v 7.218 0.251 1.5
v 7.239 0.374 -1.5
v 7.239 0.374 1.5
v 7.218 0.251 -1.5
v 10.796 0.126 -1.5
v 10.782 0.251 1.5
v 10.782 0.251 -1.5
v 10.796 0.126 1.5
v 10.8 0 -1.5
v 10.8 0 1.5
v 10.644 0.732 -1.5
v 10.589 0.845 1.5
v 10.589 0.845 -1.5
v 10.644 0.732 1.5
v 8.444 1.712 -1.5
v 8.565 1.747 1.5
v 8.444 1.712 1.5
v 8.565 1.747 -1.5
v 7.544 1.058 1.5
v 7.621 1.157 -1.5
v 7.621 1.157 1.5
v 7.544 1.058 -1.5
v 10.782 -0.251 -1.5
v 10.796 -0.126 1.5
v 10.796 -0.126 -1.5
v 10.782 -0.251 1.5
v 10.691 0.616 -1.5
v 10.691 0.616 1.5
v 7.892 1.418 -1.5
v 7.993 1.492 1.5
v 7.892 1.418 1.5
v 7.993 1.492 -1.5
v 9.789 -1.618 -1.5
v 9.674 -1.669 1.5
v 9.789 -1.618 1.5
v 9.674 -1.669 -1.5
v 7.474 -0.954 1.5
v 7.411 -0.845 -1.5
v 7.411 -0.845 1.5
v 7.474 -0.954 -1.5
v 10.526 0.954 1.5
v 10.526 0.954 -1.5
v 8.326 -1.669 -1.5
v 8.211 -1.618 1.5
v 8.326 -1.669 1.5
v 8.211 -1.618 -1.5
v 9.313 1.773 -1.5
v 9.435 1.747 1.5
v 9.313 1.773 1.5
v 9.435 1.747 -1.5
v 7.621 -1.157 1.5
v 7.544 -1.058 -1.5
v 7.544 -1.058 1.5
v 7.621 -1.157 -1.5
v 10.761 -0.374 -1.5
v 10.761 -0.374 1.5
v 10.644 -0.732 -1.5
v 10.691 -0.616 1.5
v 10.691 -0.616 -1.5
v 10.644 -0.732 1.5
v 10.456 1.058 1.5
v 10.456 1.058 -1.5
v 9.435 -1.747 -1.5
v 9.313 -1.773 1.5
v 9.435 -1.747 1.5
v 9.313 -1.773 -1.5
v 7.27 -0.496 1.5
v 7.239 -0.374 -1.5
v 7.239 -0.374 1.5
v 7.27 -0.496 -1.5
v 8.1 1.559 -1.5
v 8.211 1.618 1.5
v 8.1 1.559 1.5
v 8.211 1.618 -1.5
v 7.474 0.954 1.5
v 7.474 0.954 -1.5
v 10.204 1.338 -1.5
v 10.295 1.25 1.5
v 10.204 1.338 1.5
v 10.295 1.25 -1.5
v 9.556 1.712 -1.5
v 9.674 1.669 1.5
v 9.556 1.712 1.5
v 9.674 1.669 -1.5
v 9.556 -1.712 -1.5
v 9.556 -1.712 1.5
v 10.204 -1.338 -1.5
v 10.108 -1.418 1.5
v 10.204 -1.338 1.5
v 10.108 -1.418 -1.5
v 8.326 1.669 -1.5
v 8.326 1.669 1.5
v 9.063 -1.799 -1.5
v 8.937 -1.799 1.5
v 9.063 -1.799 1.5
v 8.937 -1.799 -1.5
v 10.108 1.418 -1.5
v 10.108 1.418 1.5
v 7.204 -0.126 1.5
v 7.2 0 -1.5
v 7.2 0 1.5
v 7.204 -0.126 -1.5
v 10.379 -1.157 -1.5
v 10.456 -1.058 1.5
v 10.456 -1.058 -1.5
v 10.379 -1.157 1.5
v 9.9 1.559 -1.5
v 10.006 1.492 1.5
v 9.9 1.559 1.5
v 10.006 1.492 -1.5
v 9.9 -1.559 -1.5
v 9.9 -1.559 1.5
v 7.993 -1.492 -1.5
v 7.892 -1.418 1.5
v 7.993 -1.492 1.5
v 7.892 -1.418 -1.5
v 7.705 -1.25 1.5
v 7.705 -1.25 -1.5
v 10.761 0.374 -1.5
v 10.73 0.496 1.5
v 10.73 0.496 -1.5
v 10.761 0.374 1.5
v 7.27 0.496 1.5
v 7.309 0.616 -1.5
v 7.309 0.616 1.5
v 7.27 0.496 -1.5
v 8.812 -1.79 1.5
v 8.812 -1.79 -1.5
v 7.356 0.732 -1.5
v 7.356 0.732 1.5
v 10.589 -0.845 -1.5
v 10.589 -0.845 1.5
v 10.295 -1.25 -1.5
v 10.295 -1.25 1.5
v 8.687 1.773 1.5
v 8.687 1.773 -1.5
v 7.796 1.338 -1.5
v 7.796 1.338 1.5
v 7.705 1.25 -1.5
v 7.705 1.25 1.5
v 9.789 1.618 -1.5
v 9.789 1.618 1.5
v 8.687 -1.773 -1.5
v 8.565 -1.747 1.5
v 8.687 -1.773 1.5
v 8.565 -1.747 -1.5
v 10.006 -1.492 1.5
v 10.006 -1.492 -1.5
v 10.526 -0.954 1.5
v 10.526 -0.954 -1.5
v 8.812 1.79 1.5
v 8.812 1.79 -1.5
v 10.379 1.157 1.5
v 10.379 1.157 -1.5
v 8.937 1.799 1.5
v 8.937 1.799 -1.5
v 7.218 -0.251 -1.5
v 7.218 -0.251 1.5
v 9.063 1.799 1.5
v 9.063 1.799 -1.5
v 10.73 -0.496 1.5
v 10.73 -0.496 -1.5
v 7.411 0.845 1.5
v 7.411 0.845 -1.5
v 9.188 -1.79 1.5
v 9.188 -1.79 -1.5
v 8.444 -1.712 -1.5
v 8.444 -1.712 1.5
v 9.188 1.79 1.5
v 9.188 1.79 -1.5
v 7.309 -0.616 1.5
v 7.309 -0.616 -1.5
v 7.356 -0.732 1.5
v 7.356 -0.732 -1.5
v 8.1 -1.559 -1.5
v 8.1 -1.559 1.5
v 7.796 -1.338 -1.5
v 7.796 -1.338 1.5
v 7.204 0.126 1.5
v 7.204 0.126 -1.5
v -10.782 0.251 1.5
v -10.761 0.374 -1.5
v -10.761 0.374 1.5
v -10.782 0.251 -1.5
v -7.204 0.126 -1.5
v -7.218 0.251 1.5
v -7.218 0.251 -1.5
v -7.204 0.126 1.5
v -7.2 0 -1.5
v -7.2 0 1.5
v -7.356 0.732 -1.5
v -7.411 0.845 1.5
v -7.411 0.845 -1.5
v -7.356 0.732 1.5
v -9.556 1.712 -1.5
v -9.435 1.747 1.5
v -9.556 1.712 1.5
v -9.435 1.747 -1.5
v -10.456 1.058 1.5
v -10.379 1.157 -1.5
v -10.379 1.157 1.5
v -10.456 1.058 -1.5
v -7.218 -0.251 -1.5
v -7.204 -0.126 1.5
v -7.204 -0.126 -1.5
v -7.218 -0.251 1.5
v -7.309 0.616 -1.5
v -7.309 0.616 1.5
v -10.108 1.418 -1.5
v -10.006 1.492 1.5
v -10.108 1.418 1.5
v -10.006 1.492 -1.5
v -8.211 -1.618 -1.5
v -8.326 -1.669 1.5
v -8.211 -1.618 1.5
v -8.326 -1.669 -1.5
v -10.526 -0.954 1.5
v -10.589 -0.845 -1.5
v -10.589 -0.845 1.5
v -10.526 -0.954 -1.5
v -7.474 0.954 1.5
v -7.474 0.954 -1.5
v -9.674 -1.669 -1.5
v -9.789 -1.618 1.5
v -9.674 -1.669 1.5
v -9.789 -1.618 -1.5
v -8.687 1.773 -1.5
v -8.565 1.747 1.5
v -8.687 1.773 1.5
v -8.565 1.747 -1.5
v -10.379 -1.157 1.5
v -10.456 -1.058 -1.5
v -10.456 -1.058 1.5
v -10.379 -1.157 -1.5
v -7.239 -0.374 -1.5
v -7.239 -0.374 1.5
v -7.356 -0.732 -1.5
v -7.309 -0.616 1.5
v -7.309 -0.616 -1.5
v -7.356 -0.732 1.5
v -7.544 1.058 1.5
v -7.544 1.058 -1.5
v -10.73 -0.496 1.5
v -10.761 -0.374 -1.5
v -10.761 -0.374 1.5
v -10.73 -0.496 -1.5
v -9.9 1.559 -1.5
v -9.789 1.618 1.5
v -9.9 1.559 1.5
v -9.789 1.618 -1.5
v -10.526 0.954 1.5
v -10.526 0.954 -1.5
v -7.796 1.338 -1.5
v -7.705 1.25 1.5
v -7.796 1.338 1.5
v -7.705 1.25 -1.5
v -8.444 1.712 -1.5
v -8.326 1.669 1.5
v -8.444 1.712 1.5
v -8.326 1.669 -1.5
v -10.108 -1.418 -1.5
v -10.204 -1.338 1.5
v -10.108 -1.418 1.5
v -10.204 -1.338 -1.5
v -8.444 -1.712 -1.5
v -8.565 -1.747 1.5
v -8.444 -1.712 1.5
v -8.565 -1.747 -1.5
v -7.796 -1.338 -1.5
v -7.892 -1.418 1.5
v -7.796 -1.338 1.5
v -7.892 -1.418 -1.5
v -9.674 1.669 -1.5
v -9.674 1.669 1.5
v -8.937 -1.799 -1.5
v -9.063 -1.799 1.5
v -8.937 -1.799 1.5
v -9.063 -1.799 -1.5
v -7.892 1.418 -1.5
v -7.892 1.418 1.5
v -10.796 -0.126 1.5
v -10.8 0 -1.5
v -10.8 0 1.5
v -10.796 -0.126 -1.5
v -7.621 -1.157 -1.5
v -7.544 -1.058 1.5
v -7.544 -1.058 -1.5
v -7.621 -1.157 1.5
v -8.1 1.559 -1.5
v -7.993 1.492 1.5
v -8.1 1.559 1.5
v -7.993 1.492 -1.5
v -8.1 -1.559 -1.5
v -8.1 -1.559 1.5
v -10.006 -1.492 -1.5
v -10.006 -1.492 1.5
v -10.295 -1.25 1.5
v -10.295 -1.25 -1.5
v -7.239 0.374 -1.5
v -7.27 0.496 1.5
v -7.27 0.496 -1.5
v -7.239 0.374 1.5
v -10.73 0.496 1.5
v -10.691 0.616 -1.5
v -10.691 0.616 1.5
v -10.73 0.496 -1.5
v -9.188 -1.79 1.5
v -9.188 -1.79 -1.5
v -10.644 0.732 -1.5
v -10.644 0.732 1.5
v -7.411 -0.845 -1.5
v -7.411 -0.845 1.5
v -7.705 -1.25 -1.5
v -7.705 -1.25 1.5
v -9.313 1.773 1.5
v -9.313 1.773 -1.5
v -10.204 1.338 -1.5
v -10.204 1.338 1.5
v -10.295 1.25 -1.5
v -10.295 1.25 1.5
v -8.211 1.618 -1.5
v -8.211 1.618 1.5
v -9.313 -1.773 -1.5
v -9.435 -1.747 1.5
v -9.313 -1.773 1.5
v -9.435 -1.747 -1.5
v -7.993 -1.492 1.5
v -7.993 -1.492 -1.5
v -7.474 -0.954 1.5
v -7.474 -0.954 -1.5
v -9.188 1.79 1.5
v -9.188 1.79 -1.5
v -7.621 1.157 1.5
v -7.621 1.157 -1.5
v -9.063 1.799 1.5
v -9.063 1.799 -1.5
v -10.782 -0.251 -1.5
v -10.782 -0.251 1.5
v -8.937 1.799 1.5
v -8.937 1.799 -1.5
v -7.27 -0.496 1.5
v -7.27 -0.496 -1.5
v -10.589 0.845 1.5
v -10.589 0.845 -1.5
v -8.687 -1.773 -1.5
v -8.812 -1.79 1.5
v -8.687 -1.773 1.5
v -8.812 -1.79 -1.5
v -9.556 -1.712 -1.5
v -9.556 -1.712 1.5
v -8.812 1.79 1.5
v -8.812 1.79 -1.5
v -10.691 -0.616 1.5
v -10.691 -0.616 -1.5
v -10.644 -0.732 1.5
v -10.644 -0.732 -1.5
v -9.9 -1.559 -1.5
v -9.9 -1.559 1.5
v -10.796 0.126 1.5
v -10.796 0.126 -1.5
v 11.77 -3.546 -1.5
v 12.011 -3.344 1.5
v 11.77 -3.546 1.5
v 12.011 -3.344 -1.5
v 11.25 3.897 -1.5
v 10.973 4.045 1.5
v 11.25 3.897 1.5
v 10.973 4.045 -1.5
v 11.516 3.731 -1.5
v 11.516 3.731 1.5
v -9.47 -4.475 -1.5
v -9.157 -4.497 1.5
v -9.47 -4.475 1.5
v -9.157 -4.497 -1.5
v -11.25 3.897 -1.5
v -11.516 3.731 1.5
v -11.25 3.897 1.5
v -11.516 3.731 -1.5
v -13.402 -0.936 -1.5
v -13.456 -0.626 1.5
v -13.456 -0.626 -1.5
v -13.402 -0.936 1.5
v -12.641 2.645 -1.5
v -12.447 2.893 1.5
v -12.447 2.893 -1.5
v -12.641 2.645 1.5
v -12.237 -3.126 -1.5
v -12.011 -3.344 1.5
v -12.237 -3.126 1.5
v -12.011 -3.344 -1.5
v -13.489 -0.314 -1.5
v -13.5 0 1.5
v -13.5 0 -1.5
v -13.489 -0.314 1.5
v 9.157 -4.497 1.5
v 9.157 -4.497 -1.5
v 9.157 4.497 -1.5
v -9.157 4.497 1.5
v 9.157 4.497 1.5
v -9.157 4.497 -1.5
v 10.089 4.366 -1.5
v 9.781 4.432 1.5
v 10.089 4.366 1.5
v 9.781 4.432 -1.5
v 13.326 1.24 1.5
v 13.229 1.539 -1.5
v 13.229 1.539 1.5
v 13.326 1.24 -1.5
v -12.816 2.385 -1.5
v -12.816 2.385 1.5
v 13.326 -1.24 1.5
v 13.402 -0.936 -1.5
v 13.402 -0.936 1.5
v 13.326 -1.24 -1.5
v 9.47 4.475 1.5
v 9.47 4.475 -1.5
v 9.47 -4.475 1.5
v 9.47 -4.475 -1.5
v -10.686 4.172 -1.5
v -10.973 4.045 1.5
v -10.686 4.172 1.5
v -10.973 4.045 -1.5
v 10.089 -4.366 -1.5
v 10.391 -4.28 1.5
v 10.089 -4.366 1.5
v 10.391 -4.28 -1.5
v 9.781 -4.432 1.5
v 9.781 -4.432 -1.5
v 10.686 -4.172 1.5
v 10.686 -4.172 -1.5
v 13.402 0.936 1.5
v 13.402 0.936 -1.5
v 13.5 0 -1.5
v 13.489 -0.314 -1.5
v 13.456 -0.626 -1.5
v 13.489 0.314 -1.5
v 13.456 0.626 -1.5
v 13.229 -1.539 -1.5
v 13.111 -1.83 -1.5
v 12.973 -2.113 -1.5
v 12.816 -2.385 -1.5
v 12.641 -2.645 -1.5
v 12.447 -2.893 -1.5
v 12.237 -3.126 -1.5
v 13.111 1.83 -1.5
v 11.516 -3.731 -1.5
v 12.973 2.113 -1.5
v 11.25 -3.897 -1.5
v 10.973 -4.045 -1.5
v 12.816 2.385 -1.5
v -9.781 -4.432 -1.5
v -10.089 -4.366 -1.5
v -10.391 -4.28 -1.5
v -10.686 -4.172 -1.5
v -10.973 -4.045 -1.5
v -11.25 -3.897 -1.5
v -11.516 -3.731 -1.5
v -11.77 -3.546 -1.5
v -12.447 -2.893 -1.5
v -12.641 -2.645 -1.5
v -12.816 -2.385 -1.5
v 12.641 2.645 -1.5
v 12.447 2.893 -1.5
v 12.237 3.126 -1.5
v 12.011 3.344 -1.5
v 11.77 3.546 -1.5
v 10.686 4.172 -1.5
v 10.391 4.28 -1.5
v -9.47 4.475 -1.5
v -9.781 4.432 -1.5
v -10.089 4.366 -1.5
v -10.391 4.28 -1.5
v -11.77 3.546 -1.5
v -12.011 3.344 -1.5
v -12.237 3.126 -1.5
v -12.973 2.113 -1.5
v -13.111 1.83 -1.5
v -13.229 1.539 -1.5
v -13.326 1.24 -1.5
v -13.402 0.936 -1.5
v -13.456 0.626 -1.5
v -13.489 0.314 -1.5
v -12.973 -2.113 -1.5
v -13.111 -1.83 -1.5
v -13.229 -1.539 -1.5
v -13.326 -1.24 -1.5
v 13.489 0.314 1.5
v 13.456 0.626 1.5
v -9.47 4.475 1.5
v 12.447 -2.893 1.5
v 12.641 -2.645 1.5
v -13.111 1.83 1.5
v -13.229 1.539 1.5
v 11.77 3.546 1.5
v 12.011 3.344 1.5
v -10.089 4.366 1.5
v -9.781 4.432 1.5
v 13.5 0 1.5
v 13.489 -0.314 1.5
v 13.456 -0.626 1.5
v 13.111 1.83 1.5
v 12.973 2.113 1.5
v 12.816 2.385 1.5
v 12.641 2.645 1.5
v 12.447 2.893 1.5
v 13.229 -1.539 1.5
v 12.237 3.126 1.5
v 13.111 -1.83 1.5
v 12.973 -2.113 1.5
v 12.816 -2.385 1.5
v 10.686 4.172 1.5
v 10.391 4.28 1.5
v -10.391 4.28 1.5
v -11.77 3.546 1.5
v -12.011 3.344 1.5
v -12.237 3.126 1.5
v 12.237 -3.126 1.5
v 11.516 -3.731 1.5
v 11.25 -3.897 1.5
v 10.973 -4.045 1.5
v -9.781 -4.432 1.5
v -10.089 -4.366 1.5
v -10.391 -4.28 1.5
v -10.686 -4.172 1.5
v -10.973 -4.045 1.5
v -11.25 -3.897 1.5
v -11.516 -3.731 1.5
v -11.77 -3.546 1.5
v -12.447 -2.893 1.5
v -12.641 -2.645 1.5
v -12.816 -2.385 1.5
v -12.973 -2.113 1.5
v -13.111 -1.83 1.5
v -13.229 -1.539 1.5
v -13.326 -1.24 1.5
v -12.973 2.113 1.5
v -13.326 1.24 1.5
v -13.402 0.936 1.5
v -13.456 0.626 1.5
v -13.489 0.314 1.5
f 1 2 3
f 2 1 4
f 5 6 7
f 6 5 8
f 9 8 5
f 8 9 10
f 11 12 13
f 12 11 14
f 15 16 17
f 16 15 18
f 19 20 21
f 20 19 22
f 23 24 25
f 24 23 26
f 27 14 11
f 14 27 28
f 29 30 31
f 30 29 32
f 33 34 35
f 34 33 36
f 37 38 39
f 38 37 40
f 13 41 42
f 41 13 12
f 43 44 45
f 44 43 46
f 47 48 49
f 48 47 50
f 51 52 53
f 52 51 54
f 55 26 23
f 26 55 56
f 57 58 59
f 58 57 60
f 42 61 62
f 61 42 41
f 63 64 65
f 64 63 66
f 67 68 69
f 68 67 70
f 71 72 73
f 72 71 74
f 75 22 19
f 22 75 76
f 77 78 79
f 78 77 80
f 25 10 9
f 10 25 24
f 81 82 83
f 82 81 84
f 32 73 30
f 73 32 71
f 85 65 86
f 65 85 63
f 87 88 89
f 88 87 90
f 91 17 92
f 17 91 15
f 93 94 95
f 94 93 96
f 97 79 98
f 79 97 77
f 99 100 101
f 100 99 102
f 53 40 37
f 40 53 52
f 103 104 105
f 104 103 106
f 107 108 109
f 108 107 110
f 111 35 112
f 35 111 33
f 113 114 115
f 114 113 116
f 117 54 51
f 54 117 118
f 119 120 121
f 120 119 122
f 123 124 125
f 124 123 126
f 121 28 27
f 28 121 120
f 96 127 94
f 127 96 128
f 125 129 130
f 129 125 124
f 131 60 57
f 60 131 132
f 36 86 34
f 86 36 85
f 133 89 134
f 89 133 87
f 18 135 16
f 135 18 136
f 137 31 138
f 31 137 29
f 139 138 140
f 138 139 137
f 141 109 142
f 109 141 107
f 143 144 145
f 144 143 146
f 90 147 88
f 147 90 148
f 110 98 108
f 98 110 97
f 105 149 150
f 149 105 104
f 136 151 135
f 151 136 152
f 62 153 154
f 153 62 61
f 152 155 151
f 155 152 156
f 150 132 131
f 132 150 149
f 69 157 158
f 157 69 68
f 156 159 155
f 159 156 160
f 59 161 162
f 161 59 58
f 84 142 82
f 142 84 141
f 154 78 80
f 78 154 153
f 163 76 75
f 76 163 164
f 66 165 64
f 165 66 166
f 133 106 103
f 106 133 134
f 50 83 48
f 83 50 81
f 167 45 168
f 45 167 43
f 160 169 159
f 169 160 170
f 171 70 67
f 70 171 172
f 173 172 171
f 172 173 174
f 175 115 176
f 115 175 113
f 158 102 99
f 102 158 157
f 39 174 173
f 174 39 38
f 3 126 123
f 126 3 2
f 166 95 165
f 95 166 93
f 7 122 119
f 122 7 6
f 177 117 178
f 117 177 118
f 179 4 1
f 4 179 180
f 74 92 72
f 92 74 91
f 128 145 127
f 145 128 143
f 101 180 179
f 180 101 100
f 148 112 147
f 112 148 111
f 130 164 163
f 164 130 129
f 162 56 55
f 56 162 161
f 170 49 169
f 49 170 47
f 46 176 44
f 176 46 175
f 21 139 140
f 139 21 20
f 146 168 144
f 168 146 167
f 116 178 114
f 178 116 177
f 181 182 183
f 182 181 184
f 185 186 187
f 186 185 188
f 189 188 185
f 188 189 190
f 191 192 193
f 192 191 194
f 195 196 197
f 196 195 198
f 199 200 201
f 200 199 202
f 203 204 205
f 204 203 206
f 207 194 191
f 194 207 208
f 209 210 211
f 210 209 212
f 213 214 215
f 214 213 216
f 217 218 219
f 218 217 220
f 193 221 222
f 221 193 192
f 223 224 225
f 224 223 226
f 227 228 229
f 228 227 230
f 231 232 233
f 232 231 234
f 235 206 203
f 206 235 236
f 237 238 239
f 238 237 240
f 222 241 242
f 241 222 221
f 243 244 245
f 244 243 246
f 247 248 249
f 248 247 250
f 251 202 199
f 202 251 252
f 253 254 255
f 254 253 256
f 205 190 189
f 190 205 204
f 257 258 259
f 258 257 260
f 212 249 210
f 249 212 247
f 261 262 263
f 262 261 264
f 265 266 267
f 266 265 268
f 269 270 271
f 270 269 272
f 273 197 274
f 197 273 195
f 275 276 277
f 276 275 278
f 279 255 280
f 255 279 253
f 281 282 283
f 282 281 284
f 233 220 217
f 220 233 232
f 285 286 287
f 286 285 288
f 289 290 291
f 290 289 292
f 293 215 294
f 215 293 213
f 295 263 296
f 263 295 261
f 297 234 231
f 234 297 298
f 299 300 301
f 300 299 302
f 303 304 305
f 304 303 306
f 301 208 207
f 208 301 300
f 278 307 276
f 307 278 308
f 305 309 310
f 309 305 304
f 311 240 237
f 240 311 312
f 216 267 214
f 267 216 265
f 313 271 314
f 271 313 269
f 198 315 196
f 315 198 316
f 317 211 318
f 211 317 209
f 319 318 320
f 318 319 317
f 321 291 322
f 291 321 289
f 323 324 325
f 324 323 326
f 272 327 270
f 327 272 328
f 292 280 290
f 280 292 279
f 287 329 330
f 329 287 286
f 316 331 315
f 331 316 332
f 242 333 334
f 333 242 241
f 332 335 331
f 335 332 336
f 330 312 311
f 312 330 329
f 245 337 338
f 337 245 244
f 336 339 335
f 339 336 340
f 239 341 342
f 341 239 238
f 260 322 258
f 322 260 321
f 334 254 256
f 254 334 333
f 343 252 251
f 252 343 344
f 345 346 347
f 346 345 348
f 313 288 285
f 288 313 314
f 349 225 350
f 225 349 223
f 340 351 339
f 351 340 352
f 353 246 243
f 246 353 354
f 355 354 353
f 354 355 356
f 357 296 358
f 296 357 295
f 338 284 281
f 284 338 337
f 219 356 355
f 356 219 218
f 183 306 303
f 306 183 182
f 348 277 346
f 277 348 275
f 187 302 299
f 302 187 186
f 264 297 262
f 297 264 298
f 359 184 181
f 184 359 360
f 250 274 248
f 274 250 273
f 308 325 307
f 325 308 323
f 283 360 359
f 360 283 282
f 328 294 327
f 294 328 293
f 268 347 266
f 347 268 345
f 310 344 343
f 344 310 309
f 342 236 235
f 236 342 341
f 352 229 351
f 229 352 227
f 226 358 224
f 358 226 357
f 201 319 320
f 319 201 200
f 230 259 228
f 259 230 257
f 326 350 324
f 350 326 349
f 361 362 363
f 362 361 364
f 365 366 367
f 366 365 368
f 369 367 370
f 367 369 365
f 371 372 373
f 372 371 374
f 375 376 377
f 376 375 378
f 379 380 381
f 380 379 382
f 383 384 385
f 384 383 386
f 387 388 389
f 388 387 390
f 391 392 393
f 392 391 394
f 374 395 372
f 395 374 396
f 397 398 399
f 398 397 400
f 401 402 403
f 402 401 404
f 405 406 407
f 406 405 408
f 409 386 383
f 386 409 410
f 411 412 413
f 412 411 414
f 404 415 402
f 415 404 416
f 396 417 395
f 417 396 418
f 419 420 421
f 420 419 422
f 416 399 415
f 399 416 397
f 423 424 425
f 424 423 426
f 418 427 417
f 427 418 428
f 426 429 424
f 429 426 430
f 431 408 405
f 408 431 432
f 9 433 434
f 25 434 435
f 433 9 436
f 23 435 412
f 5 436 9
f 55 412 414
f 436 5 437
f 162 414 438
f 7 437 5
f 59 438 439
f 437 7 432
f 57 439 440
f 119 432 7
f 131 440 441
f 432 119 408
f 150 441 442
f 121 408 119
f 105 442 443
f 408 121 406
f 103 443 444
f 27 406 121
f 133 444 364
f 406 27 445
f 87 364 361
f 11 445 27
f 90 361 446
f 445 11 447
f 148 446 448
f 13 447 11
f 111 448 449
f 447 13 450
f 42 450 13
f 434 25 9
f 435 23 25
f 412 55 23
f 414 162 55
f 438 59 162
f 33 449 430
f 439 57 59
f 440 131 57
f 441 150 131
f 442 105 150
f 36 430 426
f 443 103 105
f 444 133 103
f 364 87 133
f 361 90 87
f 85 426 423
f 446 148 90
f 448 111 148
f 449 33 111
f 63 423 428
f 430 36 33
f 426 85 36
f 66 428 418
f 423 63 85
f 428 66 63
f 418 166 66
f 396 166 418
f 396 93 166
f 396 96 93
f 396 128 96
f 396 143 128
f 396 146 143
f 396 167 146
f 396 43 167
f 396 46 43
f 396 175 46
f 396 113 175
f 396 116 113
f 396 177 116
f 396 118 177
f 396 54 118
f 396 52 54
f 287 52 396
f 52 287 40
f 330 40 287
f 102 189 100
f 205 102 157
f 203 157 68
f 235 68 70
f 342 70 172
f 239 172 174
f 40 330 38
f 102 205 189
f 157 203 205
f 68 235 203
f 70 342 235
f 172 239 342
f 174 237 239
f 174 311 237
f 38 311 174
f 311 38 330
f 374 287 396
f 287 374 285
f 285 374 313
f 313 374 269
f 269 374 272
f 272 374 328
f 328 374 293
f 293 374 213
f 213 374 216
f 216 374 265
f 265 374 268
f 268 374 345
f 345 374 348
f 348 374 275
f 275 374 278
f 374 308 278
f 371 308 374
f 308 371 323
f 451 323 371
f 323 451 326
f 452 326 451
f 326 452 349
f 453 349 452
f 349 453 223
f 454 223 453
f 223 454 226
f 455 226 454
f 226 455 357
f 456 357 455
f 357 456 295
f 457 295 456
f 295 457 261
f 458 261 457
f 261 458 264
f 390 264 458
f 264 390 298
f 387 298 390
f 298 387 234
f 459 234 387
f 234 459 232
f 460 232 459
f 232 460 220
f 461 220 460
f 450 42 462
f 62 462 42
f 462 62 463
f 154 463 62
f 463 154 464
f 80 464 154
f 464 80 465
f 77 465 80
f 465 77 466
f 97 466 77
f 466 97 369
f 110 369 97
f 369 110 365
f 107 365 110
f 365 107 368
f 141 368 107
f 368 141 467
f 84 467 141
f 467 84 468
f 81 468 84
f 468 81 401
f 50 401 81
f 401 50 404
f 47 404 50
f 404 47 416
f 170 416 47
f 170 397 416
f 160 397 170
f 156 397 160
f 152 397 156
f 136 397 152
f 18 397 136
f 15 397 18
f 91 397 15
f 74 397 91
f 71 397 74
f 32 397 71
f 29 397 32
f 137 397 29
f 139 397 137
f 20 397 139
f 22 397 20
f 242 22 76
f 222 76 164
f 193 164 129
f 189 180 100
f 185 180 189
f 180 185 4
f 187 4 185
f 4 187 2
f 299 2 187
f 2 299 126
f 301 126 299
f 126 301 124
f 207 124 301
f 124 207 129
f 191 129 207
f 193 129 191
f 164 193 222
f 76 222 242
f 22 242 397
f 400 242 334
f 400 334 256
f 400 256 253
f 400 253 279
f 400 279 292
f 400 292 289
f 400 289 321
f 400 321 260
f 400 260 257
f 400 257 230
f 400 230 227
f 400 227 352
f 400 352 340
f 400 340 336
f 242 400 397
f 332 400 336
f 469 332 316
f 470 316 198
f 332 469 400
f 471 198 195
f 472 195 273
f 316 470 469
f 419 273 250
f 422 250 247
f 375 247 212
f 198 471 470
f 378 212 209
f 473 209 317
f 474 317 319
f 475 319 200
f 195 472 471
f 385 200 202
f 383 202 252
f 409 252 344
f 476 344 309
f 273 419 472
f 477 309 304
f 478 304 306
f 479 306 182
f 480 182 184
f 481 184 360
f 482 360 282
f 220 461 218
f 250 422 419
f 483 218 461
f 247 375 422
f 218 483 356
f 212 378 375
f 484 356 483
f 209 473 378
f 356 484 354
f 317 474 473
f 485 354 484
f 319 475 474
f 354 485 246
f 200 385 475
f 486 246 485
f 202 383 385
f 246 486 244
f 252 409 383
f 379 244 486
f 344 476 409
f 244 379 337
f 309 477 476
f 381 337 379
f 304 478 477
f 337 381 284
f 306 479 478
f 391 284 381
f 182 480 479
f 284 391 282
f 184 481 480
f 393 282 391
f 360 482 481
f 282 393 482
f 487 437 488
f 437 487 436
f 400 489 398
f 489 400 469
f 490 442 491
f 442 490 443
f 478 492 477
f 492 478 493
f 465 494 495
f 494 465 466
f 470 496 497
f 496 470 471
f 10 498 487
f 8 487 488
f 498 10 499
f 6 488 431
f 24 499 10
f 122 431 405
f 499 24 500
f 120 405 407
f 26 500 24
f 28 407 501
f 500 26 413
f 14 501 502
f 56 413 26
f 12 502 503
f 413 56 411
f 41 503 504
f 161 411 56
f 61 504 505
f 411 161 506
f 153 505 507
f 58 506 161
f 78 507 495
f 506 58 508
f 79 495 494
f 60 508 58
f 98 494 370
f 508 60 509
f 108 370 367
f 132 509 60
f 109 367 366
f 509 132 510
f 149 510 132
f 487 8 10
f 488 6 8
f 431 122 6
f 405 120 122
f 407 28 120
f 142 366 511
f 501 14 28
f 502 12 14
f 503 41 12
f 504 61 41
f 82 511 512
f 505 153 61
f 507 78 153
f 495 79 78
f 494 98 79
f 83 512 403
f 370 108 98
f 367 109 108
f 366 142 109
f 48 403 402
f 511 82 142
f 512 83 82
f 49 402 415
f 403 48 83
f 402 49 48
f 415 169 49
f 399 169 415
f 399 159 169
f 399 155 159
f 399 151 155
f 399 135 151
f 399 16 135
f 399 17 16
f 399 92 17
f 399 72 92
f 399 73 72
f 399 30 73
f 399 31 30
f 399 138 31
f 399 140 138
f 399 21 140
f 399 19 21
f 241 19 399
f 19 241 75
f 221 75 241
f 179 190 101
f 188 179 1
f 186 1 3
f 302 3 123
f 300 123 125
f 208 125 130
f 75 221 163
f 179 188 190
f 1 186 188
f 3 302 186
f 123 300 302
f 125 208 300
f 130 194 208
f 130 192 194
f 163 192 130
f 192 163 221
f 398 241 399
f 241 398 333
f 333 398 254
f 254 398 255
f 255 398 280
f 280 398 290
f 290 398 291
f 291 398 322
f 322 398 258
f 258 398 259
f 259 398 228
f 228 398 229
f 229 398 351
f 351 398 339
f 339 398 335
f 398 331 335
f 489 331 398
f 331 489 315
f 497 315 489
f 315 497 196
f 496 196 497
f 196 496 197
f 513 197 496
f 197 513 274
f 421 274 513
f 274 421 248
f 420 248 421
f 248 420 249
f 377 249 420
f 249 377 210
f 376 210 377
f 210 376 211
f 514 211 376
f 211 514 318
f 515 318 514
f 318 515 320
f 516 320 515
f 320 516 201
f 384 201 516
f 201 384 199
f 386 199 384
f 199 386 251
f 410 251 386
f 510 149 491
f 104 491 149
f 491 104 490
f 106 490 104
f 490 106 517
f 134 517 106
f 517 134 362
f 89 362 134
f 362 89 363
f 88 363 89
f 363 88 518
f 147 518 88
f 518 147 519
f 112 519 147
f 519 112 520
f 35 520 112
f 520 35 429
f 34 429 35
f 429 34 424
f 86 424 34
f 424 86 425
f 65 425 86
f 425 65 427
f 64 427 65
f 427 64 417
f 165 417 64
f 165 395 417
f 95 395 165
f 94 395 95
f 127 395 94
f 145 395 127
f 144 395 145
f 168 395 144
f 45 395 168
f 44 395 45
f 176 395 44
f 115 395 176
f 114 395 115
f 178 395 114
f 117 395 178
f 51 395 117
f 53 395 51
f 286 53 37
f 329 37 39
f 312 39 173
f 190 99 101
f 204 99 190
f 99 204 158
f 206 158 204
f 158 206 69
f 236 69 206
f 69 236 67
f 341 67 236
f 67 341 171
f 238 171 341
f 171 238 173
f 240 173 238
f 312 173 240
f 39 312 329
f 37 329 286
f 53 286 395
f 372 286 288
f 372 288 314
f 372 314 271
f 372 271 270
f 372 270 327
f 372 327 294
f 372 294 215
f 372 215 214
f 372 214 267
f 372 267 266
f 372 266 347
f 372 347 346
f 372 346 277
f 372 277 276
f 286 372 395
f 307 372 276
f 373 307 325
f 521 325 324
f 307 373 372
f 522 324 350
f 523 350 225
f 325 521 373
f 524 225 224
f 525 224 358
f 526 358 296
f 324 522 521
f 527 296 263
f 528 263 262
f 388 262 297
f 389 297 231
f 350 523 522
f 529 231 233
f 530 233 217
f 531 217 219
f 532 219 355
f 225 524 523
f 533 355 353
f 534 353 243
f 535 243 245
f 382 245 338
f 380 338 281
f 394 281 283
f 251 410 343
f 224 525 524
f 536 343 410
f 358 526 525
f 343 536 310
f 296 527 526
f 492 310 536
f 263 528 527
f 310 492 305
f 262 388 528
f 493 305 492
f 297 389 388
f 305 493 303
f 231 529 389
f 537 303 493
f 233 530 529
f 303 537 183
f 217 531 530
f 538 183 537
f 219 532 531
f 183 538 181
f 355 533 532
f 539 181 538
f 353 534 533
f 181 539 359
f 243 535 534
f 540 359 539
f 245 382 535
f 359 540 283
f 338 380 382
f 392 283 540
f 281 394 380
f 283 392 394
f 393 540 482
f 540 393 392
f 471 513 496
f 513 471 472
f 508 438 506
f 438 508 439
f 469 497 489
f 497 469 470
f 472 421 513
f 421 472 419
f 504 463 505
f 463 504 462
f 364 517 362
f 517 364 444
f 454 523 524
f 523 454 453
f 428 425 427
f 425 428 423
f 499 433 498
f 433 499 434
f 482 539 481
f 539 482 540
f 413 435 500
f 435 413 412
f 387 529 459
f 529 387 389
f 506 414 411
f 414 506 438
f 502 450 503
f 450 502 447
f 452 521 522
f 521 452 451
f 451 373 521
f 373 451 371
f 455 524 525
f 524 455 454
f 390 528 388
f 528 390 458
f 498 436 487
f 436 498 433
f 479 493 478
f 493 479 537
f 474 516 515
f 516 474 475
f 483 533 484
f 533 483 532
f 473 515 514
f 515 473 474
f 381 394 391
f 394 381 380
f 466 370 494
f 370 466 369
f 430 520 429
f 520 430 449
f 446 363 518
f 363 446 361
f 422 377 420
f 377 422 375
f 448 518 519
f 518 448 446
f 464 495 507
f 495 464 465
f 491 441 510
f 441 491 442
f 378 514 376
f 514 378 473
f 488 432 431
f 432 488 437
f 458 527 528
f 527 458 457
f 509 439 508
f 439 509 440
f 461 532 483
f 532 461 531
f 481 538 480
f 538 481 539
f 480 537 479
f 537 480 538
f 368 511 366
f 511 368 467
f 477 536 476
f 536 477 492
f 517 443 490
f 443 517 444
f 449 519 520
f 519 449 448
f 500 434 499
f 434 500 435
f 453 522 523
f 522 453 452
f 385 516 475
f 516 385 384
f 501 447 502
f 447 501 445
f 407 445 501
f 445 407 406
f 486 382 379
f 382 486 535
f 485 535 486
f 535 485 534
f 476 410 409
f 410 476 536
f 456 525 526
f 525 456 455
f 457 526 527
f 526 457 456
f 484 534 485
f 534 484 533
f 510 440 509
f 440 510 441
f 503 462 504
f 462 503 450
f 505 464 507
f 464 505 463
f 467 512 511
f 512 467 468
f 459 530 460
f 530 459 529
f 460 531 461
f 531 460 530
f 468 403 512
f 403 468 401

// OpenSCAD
$fn = 90;

xS = [9, -9];
thickness = 3;
bodyRadius = 4.5;
holeRadius = 1.8;

difference(){
    hull(){
        for(bX = xS){
            translate([bX, 0, 0]){
                cylinder(h = thickness, r = bodyRadius, center = true);
            }
        }
    }
    for(hX = xS){
        translate([hX, 0, 0]){
            cylinder(h = 0.1 + thickness, r = holeRadius, center = true);
        }
    }
}
